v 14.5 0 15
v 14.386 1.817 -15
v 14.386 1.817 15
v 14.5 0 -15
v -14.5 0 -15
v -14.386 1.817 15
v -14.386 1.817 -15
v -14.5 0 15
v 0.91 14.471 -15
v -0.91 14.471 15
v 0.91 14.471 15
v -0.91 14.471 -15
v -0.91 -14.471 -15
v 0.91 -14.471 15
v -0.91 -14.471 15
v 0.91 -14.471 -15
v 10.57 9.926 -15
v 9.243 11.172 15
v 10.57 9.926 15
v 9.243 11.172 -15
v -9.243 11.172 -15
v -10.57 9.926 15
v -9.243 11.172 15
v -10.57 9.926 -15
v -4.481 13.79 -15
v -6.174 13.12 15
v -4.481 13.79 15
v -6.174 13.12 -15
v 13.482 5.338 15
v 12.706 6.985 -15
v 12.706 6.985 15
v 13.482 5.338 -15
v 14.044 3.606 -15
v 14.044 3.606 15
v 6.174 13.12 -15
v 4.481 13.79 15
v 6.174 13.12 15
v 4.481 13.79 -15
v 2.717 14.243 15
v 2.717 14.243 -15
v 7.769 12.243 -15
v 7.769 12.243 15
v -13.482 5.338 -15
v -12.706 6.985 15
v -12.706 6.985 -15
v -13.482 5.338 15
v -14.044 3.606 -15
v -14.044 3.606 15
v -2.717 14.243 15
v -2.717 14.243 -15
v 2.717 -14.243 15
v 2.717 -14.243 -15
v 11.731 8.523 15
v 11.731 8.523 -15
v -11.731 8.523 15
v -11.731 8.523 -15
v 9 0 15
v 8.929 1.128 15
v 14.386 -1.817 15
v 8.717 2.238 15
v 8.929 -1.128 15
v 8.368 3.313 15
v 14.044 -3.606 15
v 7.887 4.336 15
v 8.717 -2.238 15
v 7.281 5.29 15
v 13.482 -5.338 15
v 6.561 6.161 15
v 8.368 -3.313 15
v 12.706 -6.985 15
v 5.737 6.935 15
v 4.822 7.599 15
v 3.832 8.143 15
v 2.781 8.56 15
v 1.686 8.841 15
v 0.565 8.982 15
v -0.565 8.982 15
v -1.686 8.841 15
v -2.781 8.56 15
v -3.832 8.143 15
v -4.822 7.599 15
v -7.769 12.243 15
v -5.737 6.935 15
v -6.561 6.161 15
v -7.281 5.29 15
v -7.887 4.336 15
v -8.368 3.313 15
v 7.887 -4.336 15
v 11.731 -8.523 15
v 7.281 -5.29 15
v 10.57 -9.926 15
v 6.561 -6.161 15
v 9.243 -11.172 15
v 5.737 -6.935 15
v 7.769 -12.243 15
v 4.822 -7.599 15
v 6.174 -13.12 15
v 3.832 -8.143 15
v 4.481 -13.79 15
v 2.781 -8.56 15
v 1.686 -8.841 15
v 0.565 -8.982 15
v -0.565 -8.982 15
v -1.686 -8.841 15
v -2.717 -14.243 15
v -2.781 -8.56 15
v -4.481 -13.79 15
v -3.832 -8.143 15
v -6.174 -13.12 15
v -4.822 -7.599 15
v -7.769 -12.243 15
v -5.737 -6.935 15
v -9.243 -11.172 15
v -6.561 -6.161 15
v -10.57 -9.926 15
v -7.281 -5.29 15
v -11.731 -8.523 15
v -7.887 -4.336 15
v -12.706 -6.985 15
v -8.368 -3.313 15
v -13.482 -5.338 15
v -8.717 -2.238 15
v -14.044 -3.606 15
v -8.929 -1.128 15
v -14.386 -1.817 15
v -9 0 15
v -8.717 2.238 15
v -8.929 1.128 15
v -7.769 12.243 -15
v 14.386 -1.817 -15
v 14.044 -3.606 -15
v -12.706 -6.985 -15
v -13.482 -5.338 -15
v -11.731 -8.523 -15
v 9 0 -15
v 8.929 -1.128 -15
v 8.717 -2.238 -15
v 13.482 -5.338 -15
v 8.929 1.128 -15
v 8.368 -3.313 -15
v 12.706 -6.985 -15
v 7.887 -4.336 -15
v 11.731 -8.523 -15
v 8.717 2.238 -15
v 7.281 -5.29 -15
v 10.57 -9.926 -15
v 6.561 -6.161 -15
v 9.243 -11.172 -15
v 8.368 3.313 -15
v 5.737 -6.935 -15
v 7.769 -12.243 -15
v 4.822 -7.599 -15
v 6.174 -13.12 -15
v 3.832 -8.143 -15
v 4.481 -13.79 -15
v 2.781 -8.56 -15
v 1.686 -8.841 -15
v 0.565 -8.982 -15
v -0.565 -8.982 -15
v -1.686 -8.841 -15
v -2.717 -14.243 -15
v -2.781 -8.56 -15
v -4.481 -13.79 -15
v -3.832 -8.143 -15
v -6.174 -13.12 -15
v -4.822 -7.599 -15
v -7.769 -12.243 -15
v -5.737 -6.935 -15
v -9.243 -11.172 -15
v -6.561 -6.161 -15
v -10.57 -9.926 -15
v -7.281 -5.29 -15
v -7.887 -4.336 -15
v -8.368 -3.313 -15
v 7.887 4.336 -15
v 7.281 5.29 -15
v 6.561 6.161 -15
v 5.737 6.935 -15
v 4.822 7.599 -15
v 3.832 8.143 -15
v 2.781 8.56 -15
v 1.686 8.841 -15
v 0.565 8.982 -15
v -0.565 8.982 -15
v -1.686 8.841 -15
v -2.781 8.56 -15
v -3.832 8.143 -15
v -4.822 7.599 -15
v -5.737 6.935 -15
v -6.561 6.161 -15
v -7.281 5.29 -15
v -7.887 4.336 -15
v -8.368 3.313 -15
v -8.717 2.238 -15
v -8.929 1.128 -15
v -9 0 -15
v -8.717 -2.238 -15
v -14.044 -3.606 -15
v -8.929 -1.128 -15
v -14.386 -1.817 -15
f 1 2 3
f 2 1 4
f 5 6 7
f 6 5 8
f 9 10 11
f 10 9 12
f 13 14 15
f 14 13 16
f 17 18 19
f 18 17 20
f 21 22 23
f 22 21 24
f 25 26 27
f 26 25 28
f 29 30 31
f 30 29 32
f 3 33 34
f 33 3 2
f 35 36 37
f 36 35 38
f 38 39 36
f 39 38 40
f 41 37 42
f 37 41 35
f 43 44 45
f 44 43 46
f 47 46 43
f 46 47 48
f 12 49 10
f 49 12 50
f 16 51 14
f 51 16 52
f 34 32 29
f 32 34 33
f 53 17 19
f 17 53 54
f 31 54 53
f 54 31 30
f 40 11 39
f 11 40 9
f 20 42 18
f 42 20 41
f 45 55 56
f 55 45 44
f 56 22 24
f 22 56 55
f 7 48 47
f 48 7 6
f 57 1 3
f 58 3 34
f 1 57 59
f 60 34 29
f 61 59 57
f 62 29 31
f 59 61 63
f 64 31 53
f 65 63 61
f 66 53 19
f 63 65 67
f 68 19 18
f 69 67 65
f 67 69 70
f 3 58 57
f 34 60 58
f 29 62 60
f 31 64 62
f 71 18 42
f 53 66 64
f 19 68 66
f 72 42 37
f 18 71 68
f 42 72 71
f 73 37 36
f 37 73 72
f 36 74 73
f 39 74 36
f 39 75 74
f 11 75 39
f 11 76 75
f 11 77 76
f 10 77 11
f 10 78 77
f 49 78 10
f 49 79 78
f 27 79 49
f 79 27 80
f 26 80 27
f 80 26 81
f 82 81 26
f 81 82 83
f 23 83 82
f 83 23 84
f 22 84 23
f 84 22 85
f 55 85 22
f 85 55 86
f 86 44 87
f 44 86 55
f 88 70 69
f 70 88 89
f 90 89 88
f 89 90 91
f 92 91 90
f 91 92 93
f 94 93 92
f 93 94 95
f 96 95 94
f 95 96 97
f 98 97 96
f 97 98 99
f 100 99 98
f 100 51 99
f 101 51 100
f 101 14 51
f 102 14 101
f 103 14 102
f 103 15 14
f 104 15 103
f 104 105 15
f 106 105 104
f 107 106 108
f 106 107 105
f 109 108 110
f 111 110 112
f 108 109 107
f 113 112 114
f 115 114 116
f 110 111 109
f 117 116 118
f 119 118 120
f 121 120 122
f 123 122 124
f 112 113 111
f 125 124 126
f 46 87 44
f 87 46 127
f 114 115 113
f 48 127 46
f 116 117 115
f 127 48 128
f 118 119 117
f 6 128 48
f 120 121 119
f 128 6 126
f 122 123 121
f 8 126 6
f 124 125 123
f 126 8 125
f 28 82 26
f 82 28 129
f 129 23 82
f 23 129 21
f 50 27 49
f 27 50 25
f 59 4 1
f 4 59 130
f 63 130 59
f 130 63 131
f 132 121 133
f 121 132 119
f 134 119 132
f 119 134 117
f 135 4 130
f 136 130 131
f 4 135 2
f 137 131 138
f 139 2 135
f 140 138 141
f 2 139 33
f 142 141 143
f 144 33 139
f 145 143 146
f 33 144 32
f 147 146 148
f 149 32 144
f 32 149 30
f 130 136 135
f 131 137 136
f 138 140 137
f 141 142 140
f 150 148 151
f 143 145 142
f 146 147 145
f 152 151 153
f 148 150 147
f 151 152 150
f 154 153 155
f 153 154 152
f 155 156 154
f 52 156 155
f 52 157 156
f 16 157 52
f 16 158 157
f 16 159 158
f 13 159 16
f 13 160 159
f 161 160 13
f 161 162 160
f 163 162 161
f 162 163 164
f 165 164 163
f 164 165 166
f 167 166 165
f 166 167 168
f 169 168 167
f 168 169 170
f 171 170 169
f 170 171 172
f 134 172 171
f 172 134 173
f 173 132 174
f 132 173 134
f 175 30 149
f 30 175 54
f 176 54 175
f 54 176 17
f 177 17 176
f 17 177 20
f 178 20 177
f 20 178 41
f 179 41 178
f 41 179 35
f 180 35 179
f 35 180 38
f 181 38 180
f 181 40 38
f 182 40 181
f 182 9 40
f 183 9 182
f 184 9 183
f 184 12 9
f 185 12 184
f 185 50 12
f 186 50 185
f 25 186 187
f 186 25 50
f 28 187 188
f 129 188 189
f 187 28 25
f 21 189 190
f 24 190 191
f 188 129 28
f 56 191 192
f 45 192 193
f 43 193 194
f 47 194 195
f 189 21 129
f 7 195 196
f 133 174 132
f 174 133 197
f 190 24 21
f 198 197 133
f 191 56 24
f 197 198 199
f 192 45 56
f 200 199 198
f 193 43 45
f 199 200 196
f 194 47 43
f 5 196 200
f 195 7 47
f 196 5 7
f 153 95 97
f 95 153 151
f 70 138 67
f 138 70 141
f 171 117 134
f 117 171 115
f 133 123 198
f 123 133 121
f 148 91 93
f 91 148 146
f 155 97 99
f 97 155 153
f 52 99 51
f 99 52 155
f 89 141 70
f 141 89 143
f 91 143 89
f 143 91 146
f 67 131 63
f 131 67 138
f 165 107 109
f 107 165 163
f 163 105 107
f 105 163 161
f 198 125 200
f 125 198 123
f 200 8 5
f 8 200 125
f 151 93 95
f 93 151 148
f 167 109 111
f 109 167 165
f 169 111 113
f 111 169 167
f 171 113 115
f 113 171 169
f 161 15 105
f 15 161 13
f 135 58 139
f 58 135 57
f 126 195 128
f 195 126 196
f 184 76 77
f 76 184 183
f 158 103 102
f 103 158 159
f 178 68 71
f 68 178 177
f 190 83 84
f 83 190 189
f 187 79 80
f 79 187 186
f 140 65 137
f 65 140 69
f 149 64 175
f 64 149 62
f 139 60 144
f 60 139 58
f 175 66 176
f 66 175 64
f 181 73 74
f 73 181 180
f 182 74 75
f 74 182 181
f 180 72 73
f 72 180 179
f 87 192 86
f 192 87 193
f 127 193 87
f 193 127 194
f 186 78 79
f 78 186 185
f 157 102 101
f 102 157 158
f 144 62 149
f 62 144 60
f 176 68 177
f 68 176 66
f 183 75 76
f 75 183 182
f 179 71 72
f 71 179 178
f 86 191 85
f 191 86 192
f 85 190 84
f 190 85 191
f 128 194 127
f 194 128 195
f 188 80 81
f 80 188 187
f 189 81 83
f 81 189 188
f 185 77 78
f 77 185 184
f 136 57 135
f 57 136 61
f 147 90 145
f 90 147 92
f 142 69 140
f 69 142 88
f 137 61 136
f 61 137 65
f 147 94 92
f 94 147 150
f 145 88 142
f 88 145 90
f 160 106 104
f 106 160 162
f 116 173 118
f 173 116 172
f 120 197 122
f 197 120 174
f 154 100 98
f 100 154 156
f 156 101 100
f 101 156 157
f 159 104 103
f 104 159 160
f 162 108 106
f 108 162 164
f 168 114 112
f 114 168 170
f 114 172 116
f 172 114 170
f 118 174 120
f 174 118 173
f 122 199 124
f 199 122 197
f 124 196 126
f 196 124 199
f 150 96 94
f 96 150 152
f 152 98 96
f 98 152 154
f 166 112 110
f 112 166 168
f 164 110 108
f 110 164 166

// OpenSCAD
$fn = 50;


difference() {
	union() {
		translate(v = [0, 0, -15.0000000000]) {
			cylinder(h = 30, r = 14.5000000000);
		}
	}
	union() {
		translate(v = [0, 0, -100.0000000000]) {
			cylinder(h = 200, r = 9);
		}
	}
}
